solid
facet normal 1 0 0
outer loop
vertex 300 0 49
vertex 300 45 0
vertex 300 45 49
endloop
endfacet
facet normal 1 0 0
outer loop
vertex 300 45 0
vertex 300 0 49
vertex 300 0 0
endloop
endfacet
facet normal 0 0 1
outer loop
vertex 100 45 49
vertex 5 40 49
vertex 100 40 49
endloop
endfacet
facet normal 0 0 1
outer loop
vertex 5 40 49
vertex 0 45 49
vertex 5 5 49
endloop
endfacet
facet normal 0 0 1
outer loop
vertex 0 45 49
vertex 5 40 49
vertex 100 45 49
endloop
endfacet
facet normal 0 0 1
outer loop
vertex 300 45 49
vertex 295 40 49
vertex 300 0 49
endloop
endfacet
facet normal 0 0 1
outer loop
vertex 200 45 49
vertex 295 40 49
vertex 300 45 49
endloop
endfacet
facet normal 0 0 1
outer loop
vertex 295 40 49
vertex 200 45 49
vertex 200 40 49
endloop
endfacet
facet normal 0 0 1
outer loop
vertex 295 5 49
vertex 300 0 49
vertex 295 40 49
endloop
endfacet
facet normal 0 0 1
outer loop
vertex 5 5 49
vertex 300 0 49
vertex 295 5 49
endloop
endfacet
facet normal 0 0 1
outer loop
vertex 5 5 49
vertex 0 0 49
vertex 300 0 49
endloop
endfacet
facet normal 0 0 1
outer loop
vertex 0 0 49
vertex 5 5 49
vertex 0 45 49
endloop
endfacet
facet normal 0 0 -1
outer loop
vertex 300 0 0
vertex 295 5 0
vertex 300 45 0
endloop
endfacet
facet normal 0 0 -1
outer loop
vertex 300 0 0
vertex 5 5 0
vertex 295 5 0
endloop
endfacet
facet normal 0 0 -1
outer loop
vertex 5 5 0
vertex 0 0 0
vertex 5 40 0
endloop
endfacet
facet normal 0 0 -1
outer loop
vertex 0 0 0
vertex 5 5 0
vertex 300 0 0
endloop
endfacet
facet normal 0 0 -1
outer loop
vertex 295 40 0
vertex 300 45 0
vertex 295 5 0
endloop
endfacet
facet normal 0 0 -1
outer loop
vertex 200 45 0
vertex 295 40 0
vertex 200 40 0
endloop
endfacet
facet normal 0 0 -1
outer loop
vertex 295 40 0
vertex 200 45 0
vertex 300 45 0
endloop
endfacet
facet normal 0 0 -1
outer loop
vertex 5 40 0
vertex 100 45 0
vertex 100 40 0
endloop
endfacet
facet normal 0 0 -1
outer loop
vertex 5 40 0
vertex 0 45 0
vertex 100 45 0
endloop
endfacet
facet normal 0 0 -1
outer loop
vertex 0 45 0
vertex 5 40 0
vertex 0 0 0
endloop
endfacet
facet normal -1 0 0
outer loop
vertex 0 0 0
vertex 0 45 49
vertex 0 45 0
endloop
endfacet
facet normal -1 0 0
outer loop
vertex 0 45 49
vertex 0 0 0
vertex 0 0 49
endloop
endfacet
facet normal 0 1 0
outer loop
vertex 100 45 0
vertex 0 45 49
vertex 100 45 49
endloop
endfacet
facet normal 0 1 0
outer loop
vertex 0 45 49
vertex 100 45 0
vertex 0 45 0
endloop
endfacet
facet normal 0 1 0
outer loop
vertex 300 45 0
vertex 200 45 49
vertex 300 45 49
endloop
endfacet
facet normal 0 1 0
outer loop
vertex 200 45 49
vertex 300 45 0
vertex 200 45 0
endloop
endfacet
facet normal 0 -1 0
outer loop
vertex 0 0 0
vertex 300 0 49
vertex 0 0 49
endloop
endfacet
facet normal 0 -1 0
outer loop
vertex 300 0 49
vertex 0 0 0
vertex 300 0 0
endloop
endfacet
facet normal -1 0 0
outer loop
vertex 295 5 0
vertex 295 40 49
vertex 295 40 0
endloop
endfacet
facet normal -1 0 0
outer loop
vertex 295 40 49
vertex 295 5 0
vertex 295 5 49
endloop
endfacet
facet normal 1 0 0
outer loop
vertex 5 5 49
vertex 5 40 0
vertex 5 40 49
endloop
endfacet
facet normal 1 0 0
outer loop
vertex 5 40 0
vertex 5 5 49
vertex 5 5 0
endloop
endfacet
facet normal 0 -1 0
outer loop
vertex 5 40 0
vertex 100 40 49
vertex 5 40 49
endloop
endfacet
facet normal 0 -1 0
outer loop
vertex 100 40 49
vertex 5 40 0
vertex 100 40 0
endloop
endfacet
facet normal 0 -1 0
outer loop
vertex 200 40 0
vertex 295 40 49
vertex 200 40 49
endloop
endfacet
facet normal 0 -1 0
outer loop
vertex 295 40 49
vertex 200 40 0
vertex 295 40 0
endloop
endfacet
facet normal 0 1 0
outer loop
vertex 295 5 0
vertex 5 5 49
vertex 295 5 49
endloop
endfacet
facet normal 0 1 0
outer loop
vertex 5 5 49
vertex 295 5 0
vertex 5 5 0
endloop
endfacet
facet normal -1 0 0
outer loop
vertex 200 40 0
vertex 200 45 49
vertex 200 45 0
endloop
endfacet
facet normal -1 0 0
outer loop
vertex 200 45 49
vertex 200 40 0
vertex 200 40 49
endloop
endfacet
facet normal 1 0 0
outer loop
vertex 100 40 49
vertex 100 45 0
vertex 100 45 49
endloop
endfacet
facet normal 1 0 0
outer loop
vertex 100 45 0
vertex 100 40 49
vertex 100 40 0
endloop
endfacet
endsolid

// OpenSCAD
x=300;
y=45;
z=49;

difference() {
    cube([x, y, z]);
    color("red")
        translate([5, 5, -5])
        cube([x-10, y-10, z+10]);
    color("red")
        translate([100, 5, -5])
        cube([100, y, z+10]);
}
